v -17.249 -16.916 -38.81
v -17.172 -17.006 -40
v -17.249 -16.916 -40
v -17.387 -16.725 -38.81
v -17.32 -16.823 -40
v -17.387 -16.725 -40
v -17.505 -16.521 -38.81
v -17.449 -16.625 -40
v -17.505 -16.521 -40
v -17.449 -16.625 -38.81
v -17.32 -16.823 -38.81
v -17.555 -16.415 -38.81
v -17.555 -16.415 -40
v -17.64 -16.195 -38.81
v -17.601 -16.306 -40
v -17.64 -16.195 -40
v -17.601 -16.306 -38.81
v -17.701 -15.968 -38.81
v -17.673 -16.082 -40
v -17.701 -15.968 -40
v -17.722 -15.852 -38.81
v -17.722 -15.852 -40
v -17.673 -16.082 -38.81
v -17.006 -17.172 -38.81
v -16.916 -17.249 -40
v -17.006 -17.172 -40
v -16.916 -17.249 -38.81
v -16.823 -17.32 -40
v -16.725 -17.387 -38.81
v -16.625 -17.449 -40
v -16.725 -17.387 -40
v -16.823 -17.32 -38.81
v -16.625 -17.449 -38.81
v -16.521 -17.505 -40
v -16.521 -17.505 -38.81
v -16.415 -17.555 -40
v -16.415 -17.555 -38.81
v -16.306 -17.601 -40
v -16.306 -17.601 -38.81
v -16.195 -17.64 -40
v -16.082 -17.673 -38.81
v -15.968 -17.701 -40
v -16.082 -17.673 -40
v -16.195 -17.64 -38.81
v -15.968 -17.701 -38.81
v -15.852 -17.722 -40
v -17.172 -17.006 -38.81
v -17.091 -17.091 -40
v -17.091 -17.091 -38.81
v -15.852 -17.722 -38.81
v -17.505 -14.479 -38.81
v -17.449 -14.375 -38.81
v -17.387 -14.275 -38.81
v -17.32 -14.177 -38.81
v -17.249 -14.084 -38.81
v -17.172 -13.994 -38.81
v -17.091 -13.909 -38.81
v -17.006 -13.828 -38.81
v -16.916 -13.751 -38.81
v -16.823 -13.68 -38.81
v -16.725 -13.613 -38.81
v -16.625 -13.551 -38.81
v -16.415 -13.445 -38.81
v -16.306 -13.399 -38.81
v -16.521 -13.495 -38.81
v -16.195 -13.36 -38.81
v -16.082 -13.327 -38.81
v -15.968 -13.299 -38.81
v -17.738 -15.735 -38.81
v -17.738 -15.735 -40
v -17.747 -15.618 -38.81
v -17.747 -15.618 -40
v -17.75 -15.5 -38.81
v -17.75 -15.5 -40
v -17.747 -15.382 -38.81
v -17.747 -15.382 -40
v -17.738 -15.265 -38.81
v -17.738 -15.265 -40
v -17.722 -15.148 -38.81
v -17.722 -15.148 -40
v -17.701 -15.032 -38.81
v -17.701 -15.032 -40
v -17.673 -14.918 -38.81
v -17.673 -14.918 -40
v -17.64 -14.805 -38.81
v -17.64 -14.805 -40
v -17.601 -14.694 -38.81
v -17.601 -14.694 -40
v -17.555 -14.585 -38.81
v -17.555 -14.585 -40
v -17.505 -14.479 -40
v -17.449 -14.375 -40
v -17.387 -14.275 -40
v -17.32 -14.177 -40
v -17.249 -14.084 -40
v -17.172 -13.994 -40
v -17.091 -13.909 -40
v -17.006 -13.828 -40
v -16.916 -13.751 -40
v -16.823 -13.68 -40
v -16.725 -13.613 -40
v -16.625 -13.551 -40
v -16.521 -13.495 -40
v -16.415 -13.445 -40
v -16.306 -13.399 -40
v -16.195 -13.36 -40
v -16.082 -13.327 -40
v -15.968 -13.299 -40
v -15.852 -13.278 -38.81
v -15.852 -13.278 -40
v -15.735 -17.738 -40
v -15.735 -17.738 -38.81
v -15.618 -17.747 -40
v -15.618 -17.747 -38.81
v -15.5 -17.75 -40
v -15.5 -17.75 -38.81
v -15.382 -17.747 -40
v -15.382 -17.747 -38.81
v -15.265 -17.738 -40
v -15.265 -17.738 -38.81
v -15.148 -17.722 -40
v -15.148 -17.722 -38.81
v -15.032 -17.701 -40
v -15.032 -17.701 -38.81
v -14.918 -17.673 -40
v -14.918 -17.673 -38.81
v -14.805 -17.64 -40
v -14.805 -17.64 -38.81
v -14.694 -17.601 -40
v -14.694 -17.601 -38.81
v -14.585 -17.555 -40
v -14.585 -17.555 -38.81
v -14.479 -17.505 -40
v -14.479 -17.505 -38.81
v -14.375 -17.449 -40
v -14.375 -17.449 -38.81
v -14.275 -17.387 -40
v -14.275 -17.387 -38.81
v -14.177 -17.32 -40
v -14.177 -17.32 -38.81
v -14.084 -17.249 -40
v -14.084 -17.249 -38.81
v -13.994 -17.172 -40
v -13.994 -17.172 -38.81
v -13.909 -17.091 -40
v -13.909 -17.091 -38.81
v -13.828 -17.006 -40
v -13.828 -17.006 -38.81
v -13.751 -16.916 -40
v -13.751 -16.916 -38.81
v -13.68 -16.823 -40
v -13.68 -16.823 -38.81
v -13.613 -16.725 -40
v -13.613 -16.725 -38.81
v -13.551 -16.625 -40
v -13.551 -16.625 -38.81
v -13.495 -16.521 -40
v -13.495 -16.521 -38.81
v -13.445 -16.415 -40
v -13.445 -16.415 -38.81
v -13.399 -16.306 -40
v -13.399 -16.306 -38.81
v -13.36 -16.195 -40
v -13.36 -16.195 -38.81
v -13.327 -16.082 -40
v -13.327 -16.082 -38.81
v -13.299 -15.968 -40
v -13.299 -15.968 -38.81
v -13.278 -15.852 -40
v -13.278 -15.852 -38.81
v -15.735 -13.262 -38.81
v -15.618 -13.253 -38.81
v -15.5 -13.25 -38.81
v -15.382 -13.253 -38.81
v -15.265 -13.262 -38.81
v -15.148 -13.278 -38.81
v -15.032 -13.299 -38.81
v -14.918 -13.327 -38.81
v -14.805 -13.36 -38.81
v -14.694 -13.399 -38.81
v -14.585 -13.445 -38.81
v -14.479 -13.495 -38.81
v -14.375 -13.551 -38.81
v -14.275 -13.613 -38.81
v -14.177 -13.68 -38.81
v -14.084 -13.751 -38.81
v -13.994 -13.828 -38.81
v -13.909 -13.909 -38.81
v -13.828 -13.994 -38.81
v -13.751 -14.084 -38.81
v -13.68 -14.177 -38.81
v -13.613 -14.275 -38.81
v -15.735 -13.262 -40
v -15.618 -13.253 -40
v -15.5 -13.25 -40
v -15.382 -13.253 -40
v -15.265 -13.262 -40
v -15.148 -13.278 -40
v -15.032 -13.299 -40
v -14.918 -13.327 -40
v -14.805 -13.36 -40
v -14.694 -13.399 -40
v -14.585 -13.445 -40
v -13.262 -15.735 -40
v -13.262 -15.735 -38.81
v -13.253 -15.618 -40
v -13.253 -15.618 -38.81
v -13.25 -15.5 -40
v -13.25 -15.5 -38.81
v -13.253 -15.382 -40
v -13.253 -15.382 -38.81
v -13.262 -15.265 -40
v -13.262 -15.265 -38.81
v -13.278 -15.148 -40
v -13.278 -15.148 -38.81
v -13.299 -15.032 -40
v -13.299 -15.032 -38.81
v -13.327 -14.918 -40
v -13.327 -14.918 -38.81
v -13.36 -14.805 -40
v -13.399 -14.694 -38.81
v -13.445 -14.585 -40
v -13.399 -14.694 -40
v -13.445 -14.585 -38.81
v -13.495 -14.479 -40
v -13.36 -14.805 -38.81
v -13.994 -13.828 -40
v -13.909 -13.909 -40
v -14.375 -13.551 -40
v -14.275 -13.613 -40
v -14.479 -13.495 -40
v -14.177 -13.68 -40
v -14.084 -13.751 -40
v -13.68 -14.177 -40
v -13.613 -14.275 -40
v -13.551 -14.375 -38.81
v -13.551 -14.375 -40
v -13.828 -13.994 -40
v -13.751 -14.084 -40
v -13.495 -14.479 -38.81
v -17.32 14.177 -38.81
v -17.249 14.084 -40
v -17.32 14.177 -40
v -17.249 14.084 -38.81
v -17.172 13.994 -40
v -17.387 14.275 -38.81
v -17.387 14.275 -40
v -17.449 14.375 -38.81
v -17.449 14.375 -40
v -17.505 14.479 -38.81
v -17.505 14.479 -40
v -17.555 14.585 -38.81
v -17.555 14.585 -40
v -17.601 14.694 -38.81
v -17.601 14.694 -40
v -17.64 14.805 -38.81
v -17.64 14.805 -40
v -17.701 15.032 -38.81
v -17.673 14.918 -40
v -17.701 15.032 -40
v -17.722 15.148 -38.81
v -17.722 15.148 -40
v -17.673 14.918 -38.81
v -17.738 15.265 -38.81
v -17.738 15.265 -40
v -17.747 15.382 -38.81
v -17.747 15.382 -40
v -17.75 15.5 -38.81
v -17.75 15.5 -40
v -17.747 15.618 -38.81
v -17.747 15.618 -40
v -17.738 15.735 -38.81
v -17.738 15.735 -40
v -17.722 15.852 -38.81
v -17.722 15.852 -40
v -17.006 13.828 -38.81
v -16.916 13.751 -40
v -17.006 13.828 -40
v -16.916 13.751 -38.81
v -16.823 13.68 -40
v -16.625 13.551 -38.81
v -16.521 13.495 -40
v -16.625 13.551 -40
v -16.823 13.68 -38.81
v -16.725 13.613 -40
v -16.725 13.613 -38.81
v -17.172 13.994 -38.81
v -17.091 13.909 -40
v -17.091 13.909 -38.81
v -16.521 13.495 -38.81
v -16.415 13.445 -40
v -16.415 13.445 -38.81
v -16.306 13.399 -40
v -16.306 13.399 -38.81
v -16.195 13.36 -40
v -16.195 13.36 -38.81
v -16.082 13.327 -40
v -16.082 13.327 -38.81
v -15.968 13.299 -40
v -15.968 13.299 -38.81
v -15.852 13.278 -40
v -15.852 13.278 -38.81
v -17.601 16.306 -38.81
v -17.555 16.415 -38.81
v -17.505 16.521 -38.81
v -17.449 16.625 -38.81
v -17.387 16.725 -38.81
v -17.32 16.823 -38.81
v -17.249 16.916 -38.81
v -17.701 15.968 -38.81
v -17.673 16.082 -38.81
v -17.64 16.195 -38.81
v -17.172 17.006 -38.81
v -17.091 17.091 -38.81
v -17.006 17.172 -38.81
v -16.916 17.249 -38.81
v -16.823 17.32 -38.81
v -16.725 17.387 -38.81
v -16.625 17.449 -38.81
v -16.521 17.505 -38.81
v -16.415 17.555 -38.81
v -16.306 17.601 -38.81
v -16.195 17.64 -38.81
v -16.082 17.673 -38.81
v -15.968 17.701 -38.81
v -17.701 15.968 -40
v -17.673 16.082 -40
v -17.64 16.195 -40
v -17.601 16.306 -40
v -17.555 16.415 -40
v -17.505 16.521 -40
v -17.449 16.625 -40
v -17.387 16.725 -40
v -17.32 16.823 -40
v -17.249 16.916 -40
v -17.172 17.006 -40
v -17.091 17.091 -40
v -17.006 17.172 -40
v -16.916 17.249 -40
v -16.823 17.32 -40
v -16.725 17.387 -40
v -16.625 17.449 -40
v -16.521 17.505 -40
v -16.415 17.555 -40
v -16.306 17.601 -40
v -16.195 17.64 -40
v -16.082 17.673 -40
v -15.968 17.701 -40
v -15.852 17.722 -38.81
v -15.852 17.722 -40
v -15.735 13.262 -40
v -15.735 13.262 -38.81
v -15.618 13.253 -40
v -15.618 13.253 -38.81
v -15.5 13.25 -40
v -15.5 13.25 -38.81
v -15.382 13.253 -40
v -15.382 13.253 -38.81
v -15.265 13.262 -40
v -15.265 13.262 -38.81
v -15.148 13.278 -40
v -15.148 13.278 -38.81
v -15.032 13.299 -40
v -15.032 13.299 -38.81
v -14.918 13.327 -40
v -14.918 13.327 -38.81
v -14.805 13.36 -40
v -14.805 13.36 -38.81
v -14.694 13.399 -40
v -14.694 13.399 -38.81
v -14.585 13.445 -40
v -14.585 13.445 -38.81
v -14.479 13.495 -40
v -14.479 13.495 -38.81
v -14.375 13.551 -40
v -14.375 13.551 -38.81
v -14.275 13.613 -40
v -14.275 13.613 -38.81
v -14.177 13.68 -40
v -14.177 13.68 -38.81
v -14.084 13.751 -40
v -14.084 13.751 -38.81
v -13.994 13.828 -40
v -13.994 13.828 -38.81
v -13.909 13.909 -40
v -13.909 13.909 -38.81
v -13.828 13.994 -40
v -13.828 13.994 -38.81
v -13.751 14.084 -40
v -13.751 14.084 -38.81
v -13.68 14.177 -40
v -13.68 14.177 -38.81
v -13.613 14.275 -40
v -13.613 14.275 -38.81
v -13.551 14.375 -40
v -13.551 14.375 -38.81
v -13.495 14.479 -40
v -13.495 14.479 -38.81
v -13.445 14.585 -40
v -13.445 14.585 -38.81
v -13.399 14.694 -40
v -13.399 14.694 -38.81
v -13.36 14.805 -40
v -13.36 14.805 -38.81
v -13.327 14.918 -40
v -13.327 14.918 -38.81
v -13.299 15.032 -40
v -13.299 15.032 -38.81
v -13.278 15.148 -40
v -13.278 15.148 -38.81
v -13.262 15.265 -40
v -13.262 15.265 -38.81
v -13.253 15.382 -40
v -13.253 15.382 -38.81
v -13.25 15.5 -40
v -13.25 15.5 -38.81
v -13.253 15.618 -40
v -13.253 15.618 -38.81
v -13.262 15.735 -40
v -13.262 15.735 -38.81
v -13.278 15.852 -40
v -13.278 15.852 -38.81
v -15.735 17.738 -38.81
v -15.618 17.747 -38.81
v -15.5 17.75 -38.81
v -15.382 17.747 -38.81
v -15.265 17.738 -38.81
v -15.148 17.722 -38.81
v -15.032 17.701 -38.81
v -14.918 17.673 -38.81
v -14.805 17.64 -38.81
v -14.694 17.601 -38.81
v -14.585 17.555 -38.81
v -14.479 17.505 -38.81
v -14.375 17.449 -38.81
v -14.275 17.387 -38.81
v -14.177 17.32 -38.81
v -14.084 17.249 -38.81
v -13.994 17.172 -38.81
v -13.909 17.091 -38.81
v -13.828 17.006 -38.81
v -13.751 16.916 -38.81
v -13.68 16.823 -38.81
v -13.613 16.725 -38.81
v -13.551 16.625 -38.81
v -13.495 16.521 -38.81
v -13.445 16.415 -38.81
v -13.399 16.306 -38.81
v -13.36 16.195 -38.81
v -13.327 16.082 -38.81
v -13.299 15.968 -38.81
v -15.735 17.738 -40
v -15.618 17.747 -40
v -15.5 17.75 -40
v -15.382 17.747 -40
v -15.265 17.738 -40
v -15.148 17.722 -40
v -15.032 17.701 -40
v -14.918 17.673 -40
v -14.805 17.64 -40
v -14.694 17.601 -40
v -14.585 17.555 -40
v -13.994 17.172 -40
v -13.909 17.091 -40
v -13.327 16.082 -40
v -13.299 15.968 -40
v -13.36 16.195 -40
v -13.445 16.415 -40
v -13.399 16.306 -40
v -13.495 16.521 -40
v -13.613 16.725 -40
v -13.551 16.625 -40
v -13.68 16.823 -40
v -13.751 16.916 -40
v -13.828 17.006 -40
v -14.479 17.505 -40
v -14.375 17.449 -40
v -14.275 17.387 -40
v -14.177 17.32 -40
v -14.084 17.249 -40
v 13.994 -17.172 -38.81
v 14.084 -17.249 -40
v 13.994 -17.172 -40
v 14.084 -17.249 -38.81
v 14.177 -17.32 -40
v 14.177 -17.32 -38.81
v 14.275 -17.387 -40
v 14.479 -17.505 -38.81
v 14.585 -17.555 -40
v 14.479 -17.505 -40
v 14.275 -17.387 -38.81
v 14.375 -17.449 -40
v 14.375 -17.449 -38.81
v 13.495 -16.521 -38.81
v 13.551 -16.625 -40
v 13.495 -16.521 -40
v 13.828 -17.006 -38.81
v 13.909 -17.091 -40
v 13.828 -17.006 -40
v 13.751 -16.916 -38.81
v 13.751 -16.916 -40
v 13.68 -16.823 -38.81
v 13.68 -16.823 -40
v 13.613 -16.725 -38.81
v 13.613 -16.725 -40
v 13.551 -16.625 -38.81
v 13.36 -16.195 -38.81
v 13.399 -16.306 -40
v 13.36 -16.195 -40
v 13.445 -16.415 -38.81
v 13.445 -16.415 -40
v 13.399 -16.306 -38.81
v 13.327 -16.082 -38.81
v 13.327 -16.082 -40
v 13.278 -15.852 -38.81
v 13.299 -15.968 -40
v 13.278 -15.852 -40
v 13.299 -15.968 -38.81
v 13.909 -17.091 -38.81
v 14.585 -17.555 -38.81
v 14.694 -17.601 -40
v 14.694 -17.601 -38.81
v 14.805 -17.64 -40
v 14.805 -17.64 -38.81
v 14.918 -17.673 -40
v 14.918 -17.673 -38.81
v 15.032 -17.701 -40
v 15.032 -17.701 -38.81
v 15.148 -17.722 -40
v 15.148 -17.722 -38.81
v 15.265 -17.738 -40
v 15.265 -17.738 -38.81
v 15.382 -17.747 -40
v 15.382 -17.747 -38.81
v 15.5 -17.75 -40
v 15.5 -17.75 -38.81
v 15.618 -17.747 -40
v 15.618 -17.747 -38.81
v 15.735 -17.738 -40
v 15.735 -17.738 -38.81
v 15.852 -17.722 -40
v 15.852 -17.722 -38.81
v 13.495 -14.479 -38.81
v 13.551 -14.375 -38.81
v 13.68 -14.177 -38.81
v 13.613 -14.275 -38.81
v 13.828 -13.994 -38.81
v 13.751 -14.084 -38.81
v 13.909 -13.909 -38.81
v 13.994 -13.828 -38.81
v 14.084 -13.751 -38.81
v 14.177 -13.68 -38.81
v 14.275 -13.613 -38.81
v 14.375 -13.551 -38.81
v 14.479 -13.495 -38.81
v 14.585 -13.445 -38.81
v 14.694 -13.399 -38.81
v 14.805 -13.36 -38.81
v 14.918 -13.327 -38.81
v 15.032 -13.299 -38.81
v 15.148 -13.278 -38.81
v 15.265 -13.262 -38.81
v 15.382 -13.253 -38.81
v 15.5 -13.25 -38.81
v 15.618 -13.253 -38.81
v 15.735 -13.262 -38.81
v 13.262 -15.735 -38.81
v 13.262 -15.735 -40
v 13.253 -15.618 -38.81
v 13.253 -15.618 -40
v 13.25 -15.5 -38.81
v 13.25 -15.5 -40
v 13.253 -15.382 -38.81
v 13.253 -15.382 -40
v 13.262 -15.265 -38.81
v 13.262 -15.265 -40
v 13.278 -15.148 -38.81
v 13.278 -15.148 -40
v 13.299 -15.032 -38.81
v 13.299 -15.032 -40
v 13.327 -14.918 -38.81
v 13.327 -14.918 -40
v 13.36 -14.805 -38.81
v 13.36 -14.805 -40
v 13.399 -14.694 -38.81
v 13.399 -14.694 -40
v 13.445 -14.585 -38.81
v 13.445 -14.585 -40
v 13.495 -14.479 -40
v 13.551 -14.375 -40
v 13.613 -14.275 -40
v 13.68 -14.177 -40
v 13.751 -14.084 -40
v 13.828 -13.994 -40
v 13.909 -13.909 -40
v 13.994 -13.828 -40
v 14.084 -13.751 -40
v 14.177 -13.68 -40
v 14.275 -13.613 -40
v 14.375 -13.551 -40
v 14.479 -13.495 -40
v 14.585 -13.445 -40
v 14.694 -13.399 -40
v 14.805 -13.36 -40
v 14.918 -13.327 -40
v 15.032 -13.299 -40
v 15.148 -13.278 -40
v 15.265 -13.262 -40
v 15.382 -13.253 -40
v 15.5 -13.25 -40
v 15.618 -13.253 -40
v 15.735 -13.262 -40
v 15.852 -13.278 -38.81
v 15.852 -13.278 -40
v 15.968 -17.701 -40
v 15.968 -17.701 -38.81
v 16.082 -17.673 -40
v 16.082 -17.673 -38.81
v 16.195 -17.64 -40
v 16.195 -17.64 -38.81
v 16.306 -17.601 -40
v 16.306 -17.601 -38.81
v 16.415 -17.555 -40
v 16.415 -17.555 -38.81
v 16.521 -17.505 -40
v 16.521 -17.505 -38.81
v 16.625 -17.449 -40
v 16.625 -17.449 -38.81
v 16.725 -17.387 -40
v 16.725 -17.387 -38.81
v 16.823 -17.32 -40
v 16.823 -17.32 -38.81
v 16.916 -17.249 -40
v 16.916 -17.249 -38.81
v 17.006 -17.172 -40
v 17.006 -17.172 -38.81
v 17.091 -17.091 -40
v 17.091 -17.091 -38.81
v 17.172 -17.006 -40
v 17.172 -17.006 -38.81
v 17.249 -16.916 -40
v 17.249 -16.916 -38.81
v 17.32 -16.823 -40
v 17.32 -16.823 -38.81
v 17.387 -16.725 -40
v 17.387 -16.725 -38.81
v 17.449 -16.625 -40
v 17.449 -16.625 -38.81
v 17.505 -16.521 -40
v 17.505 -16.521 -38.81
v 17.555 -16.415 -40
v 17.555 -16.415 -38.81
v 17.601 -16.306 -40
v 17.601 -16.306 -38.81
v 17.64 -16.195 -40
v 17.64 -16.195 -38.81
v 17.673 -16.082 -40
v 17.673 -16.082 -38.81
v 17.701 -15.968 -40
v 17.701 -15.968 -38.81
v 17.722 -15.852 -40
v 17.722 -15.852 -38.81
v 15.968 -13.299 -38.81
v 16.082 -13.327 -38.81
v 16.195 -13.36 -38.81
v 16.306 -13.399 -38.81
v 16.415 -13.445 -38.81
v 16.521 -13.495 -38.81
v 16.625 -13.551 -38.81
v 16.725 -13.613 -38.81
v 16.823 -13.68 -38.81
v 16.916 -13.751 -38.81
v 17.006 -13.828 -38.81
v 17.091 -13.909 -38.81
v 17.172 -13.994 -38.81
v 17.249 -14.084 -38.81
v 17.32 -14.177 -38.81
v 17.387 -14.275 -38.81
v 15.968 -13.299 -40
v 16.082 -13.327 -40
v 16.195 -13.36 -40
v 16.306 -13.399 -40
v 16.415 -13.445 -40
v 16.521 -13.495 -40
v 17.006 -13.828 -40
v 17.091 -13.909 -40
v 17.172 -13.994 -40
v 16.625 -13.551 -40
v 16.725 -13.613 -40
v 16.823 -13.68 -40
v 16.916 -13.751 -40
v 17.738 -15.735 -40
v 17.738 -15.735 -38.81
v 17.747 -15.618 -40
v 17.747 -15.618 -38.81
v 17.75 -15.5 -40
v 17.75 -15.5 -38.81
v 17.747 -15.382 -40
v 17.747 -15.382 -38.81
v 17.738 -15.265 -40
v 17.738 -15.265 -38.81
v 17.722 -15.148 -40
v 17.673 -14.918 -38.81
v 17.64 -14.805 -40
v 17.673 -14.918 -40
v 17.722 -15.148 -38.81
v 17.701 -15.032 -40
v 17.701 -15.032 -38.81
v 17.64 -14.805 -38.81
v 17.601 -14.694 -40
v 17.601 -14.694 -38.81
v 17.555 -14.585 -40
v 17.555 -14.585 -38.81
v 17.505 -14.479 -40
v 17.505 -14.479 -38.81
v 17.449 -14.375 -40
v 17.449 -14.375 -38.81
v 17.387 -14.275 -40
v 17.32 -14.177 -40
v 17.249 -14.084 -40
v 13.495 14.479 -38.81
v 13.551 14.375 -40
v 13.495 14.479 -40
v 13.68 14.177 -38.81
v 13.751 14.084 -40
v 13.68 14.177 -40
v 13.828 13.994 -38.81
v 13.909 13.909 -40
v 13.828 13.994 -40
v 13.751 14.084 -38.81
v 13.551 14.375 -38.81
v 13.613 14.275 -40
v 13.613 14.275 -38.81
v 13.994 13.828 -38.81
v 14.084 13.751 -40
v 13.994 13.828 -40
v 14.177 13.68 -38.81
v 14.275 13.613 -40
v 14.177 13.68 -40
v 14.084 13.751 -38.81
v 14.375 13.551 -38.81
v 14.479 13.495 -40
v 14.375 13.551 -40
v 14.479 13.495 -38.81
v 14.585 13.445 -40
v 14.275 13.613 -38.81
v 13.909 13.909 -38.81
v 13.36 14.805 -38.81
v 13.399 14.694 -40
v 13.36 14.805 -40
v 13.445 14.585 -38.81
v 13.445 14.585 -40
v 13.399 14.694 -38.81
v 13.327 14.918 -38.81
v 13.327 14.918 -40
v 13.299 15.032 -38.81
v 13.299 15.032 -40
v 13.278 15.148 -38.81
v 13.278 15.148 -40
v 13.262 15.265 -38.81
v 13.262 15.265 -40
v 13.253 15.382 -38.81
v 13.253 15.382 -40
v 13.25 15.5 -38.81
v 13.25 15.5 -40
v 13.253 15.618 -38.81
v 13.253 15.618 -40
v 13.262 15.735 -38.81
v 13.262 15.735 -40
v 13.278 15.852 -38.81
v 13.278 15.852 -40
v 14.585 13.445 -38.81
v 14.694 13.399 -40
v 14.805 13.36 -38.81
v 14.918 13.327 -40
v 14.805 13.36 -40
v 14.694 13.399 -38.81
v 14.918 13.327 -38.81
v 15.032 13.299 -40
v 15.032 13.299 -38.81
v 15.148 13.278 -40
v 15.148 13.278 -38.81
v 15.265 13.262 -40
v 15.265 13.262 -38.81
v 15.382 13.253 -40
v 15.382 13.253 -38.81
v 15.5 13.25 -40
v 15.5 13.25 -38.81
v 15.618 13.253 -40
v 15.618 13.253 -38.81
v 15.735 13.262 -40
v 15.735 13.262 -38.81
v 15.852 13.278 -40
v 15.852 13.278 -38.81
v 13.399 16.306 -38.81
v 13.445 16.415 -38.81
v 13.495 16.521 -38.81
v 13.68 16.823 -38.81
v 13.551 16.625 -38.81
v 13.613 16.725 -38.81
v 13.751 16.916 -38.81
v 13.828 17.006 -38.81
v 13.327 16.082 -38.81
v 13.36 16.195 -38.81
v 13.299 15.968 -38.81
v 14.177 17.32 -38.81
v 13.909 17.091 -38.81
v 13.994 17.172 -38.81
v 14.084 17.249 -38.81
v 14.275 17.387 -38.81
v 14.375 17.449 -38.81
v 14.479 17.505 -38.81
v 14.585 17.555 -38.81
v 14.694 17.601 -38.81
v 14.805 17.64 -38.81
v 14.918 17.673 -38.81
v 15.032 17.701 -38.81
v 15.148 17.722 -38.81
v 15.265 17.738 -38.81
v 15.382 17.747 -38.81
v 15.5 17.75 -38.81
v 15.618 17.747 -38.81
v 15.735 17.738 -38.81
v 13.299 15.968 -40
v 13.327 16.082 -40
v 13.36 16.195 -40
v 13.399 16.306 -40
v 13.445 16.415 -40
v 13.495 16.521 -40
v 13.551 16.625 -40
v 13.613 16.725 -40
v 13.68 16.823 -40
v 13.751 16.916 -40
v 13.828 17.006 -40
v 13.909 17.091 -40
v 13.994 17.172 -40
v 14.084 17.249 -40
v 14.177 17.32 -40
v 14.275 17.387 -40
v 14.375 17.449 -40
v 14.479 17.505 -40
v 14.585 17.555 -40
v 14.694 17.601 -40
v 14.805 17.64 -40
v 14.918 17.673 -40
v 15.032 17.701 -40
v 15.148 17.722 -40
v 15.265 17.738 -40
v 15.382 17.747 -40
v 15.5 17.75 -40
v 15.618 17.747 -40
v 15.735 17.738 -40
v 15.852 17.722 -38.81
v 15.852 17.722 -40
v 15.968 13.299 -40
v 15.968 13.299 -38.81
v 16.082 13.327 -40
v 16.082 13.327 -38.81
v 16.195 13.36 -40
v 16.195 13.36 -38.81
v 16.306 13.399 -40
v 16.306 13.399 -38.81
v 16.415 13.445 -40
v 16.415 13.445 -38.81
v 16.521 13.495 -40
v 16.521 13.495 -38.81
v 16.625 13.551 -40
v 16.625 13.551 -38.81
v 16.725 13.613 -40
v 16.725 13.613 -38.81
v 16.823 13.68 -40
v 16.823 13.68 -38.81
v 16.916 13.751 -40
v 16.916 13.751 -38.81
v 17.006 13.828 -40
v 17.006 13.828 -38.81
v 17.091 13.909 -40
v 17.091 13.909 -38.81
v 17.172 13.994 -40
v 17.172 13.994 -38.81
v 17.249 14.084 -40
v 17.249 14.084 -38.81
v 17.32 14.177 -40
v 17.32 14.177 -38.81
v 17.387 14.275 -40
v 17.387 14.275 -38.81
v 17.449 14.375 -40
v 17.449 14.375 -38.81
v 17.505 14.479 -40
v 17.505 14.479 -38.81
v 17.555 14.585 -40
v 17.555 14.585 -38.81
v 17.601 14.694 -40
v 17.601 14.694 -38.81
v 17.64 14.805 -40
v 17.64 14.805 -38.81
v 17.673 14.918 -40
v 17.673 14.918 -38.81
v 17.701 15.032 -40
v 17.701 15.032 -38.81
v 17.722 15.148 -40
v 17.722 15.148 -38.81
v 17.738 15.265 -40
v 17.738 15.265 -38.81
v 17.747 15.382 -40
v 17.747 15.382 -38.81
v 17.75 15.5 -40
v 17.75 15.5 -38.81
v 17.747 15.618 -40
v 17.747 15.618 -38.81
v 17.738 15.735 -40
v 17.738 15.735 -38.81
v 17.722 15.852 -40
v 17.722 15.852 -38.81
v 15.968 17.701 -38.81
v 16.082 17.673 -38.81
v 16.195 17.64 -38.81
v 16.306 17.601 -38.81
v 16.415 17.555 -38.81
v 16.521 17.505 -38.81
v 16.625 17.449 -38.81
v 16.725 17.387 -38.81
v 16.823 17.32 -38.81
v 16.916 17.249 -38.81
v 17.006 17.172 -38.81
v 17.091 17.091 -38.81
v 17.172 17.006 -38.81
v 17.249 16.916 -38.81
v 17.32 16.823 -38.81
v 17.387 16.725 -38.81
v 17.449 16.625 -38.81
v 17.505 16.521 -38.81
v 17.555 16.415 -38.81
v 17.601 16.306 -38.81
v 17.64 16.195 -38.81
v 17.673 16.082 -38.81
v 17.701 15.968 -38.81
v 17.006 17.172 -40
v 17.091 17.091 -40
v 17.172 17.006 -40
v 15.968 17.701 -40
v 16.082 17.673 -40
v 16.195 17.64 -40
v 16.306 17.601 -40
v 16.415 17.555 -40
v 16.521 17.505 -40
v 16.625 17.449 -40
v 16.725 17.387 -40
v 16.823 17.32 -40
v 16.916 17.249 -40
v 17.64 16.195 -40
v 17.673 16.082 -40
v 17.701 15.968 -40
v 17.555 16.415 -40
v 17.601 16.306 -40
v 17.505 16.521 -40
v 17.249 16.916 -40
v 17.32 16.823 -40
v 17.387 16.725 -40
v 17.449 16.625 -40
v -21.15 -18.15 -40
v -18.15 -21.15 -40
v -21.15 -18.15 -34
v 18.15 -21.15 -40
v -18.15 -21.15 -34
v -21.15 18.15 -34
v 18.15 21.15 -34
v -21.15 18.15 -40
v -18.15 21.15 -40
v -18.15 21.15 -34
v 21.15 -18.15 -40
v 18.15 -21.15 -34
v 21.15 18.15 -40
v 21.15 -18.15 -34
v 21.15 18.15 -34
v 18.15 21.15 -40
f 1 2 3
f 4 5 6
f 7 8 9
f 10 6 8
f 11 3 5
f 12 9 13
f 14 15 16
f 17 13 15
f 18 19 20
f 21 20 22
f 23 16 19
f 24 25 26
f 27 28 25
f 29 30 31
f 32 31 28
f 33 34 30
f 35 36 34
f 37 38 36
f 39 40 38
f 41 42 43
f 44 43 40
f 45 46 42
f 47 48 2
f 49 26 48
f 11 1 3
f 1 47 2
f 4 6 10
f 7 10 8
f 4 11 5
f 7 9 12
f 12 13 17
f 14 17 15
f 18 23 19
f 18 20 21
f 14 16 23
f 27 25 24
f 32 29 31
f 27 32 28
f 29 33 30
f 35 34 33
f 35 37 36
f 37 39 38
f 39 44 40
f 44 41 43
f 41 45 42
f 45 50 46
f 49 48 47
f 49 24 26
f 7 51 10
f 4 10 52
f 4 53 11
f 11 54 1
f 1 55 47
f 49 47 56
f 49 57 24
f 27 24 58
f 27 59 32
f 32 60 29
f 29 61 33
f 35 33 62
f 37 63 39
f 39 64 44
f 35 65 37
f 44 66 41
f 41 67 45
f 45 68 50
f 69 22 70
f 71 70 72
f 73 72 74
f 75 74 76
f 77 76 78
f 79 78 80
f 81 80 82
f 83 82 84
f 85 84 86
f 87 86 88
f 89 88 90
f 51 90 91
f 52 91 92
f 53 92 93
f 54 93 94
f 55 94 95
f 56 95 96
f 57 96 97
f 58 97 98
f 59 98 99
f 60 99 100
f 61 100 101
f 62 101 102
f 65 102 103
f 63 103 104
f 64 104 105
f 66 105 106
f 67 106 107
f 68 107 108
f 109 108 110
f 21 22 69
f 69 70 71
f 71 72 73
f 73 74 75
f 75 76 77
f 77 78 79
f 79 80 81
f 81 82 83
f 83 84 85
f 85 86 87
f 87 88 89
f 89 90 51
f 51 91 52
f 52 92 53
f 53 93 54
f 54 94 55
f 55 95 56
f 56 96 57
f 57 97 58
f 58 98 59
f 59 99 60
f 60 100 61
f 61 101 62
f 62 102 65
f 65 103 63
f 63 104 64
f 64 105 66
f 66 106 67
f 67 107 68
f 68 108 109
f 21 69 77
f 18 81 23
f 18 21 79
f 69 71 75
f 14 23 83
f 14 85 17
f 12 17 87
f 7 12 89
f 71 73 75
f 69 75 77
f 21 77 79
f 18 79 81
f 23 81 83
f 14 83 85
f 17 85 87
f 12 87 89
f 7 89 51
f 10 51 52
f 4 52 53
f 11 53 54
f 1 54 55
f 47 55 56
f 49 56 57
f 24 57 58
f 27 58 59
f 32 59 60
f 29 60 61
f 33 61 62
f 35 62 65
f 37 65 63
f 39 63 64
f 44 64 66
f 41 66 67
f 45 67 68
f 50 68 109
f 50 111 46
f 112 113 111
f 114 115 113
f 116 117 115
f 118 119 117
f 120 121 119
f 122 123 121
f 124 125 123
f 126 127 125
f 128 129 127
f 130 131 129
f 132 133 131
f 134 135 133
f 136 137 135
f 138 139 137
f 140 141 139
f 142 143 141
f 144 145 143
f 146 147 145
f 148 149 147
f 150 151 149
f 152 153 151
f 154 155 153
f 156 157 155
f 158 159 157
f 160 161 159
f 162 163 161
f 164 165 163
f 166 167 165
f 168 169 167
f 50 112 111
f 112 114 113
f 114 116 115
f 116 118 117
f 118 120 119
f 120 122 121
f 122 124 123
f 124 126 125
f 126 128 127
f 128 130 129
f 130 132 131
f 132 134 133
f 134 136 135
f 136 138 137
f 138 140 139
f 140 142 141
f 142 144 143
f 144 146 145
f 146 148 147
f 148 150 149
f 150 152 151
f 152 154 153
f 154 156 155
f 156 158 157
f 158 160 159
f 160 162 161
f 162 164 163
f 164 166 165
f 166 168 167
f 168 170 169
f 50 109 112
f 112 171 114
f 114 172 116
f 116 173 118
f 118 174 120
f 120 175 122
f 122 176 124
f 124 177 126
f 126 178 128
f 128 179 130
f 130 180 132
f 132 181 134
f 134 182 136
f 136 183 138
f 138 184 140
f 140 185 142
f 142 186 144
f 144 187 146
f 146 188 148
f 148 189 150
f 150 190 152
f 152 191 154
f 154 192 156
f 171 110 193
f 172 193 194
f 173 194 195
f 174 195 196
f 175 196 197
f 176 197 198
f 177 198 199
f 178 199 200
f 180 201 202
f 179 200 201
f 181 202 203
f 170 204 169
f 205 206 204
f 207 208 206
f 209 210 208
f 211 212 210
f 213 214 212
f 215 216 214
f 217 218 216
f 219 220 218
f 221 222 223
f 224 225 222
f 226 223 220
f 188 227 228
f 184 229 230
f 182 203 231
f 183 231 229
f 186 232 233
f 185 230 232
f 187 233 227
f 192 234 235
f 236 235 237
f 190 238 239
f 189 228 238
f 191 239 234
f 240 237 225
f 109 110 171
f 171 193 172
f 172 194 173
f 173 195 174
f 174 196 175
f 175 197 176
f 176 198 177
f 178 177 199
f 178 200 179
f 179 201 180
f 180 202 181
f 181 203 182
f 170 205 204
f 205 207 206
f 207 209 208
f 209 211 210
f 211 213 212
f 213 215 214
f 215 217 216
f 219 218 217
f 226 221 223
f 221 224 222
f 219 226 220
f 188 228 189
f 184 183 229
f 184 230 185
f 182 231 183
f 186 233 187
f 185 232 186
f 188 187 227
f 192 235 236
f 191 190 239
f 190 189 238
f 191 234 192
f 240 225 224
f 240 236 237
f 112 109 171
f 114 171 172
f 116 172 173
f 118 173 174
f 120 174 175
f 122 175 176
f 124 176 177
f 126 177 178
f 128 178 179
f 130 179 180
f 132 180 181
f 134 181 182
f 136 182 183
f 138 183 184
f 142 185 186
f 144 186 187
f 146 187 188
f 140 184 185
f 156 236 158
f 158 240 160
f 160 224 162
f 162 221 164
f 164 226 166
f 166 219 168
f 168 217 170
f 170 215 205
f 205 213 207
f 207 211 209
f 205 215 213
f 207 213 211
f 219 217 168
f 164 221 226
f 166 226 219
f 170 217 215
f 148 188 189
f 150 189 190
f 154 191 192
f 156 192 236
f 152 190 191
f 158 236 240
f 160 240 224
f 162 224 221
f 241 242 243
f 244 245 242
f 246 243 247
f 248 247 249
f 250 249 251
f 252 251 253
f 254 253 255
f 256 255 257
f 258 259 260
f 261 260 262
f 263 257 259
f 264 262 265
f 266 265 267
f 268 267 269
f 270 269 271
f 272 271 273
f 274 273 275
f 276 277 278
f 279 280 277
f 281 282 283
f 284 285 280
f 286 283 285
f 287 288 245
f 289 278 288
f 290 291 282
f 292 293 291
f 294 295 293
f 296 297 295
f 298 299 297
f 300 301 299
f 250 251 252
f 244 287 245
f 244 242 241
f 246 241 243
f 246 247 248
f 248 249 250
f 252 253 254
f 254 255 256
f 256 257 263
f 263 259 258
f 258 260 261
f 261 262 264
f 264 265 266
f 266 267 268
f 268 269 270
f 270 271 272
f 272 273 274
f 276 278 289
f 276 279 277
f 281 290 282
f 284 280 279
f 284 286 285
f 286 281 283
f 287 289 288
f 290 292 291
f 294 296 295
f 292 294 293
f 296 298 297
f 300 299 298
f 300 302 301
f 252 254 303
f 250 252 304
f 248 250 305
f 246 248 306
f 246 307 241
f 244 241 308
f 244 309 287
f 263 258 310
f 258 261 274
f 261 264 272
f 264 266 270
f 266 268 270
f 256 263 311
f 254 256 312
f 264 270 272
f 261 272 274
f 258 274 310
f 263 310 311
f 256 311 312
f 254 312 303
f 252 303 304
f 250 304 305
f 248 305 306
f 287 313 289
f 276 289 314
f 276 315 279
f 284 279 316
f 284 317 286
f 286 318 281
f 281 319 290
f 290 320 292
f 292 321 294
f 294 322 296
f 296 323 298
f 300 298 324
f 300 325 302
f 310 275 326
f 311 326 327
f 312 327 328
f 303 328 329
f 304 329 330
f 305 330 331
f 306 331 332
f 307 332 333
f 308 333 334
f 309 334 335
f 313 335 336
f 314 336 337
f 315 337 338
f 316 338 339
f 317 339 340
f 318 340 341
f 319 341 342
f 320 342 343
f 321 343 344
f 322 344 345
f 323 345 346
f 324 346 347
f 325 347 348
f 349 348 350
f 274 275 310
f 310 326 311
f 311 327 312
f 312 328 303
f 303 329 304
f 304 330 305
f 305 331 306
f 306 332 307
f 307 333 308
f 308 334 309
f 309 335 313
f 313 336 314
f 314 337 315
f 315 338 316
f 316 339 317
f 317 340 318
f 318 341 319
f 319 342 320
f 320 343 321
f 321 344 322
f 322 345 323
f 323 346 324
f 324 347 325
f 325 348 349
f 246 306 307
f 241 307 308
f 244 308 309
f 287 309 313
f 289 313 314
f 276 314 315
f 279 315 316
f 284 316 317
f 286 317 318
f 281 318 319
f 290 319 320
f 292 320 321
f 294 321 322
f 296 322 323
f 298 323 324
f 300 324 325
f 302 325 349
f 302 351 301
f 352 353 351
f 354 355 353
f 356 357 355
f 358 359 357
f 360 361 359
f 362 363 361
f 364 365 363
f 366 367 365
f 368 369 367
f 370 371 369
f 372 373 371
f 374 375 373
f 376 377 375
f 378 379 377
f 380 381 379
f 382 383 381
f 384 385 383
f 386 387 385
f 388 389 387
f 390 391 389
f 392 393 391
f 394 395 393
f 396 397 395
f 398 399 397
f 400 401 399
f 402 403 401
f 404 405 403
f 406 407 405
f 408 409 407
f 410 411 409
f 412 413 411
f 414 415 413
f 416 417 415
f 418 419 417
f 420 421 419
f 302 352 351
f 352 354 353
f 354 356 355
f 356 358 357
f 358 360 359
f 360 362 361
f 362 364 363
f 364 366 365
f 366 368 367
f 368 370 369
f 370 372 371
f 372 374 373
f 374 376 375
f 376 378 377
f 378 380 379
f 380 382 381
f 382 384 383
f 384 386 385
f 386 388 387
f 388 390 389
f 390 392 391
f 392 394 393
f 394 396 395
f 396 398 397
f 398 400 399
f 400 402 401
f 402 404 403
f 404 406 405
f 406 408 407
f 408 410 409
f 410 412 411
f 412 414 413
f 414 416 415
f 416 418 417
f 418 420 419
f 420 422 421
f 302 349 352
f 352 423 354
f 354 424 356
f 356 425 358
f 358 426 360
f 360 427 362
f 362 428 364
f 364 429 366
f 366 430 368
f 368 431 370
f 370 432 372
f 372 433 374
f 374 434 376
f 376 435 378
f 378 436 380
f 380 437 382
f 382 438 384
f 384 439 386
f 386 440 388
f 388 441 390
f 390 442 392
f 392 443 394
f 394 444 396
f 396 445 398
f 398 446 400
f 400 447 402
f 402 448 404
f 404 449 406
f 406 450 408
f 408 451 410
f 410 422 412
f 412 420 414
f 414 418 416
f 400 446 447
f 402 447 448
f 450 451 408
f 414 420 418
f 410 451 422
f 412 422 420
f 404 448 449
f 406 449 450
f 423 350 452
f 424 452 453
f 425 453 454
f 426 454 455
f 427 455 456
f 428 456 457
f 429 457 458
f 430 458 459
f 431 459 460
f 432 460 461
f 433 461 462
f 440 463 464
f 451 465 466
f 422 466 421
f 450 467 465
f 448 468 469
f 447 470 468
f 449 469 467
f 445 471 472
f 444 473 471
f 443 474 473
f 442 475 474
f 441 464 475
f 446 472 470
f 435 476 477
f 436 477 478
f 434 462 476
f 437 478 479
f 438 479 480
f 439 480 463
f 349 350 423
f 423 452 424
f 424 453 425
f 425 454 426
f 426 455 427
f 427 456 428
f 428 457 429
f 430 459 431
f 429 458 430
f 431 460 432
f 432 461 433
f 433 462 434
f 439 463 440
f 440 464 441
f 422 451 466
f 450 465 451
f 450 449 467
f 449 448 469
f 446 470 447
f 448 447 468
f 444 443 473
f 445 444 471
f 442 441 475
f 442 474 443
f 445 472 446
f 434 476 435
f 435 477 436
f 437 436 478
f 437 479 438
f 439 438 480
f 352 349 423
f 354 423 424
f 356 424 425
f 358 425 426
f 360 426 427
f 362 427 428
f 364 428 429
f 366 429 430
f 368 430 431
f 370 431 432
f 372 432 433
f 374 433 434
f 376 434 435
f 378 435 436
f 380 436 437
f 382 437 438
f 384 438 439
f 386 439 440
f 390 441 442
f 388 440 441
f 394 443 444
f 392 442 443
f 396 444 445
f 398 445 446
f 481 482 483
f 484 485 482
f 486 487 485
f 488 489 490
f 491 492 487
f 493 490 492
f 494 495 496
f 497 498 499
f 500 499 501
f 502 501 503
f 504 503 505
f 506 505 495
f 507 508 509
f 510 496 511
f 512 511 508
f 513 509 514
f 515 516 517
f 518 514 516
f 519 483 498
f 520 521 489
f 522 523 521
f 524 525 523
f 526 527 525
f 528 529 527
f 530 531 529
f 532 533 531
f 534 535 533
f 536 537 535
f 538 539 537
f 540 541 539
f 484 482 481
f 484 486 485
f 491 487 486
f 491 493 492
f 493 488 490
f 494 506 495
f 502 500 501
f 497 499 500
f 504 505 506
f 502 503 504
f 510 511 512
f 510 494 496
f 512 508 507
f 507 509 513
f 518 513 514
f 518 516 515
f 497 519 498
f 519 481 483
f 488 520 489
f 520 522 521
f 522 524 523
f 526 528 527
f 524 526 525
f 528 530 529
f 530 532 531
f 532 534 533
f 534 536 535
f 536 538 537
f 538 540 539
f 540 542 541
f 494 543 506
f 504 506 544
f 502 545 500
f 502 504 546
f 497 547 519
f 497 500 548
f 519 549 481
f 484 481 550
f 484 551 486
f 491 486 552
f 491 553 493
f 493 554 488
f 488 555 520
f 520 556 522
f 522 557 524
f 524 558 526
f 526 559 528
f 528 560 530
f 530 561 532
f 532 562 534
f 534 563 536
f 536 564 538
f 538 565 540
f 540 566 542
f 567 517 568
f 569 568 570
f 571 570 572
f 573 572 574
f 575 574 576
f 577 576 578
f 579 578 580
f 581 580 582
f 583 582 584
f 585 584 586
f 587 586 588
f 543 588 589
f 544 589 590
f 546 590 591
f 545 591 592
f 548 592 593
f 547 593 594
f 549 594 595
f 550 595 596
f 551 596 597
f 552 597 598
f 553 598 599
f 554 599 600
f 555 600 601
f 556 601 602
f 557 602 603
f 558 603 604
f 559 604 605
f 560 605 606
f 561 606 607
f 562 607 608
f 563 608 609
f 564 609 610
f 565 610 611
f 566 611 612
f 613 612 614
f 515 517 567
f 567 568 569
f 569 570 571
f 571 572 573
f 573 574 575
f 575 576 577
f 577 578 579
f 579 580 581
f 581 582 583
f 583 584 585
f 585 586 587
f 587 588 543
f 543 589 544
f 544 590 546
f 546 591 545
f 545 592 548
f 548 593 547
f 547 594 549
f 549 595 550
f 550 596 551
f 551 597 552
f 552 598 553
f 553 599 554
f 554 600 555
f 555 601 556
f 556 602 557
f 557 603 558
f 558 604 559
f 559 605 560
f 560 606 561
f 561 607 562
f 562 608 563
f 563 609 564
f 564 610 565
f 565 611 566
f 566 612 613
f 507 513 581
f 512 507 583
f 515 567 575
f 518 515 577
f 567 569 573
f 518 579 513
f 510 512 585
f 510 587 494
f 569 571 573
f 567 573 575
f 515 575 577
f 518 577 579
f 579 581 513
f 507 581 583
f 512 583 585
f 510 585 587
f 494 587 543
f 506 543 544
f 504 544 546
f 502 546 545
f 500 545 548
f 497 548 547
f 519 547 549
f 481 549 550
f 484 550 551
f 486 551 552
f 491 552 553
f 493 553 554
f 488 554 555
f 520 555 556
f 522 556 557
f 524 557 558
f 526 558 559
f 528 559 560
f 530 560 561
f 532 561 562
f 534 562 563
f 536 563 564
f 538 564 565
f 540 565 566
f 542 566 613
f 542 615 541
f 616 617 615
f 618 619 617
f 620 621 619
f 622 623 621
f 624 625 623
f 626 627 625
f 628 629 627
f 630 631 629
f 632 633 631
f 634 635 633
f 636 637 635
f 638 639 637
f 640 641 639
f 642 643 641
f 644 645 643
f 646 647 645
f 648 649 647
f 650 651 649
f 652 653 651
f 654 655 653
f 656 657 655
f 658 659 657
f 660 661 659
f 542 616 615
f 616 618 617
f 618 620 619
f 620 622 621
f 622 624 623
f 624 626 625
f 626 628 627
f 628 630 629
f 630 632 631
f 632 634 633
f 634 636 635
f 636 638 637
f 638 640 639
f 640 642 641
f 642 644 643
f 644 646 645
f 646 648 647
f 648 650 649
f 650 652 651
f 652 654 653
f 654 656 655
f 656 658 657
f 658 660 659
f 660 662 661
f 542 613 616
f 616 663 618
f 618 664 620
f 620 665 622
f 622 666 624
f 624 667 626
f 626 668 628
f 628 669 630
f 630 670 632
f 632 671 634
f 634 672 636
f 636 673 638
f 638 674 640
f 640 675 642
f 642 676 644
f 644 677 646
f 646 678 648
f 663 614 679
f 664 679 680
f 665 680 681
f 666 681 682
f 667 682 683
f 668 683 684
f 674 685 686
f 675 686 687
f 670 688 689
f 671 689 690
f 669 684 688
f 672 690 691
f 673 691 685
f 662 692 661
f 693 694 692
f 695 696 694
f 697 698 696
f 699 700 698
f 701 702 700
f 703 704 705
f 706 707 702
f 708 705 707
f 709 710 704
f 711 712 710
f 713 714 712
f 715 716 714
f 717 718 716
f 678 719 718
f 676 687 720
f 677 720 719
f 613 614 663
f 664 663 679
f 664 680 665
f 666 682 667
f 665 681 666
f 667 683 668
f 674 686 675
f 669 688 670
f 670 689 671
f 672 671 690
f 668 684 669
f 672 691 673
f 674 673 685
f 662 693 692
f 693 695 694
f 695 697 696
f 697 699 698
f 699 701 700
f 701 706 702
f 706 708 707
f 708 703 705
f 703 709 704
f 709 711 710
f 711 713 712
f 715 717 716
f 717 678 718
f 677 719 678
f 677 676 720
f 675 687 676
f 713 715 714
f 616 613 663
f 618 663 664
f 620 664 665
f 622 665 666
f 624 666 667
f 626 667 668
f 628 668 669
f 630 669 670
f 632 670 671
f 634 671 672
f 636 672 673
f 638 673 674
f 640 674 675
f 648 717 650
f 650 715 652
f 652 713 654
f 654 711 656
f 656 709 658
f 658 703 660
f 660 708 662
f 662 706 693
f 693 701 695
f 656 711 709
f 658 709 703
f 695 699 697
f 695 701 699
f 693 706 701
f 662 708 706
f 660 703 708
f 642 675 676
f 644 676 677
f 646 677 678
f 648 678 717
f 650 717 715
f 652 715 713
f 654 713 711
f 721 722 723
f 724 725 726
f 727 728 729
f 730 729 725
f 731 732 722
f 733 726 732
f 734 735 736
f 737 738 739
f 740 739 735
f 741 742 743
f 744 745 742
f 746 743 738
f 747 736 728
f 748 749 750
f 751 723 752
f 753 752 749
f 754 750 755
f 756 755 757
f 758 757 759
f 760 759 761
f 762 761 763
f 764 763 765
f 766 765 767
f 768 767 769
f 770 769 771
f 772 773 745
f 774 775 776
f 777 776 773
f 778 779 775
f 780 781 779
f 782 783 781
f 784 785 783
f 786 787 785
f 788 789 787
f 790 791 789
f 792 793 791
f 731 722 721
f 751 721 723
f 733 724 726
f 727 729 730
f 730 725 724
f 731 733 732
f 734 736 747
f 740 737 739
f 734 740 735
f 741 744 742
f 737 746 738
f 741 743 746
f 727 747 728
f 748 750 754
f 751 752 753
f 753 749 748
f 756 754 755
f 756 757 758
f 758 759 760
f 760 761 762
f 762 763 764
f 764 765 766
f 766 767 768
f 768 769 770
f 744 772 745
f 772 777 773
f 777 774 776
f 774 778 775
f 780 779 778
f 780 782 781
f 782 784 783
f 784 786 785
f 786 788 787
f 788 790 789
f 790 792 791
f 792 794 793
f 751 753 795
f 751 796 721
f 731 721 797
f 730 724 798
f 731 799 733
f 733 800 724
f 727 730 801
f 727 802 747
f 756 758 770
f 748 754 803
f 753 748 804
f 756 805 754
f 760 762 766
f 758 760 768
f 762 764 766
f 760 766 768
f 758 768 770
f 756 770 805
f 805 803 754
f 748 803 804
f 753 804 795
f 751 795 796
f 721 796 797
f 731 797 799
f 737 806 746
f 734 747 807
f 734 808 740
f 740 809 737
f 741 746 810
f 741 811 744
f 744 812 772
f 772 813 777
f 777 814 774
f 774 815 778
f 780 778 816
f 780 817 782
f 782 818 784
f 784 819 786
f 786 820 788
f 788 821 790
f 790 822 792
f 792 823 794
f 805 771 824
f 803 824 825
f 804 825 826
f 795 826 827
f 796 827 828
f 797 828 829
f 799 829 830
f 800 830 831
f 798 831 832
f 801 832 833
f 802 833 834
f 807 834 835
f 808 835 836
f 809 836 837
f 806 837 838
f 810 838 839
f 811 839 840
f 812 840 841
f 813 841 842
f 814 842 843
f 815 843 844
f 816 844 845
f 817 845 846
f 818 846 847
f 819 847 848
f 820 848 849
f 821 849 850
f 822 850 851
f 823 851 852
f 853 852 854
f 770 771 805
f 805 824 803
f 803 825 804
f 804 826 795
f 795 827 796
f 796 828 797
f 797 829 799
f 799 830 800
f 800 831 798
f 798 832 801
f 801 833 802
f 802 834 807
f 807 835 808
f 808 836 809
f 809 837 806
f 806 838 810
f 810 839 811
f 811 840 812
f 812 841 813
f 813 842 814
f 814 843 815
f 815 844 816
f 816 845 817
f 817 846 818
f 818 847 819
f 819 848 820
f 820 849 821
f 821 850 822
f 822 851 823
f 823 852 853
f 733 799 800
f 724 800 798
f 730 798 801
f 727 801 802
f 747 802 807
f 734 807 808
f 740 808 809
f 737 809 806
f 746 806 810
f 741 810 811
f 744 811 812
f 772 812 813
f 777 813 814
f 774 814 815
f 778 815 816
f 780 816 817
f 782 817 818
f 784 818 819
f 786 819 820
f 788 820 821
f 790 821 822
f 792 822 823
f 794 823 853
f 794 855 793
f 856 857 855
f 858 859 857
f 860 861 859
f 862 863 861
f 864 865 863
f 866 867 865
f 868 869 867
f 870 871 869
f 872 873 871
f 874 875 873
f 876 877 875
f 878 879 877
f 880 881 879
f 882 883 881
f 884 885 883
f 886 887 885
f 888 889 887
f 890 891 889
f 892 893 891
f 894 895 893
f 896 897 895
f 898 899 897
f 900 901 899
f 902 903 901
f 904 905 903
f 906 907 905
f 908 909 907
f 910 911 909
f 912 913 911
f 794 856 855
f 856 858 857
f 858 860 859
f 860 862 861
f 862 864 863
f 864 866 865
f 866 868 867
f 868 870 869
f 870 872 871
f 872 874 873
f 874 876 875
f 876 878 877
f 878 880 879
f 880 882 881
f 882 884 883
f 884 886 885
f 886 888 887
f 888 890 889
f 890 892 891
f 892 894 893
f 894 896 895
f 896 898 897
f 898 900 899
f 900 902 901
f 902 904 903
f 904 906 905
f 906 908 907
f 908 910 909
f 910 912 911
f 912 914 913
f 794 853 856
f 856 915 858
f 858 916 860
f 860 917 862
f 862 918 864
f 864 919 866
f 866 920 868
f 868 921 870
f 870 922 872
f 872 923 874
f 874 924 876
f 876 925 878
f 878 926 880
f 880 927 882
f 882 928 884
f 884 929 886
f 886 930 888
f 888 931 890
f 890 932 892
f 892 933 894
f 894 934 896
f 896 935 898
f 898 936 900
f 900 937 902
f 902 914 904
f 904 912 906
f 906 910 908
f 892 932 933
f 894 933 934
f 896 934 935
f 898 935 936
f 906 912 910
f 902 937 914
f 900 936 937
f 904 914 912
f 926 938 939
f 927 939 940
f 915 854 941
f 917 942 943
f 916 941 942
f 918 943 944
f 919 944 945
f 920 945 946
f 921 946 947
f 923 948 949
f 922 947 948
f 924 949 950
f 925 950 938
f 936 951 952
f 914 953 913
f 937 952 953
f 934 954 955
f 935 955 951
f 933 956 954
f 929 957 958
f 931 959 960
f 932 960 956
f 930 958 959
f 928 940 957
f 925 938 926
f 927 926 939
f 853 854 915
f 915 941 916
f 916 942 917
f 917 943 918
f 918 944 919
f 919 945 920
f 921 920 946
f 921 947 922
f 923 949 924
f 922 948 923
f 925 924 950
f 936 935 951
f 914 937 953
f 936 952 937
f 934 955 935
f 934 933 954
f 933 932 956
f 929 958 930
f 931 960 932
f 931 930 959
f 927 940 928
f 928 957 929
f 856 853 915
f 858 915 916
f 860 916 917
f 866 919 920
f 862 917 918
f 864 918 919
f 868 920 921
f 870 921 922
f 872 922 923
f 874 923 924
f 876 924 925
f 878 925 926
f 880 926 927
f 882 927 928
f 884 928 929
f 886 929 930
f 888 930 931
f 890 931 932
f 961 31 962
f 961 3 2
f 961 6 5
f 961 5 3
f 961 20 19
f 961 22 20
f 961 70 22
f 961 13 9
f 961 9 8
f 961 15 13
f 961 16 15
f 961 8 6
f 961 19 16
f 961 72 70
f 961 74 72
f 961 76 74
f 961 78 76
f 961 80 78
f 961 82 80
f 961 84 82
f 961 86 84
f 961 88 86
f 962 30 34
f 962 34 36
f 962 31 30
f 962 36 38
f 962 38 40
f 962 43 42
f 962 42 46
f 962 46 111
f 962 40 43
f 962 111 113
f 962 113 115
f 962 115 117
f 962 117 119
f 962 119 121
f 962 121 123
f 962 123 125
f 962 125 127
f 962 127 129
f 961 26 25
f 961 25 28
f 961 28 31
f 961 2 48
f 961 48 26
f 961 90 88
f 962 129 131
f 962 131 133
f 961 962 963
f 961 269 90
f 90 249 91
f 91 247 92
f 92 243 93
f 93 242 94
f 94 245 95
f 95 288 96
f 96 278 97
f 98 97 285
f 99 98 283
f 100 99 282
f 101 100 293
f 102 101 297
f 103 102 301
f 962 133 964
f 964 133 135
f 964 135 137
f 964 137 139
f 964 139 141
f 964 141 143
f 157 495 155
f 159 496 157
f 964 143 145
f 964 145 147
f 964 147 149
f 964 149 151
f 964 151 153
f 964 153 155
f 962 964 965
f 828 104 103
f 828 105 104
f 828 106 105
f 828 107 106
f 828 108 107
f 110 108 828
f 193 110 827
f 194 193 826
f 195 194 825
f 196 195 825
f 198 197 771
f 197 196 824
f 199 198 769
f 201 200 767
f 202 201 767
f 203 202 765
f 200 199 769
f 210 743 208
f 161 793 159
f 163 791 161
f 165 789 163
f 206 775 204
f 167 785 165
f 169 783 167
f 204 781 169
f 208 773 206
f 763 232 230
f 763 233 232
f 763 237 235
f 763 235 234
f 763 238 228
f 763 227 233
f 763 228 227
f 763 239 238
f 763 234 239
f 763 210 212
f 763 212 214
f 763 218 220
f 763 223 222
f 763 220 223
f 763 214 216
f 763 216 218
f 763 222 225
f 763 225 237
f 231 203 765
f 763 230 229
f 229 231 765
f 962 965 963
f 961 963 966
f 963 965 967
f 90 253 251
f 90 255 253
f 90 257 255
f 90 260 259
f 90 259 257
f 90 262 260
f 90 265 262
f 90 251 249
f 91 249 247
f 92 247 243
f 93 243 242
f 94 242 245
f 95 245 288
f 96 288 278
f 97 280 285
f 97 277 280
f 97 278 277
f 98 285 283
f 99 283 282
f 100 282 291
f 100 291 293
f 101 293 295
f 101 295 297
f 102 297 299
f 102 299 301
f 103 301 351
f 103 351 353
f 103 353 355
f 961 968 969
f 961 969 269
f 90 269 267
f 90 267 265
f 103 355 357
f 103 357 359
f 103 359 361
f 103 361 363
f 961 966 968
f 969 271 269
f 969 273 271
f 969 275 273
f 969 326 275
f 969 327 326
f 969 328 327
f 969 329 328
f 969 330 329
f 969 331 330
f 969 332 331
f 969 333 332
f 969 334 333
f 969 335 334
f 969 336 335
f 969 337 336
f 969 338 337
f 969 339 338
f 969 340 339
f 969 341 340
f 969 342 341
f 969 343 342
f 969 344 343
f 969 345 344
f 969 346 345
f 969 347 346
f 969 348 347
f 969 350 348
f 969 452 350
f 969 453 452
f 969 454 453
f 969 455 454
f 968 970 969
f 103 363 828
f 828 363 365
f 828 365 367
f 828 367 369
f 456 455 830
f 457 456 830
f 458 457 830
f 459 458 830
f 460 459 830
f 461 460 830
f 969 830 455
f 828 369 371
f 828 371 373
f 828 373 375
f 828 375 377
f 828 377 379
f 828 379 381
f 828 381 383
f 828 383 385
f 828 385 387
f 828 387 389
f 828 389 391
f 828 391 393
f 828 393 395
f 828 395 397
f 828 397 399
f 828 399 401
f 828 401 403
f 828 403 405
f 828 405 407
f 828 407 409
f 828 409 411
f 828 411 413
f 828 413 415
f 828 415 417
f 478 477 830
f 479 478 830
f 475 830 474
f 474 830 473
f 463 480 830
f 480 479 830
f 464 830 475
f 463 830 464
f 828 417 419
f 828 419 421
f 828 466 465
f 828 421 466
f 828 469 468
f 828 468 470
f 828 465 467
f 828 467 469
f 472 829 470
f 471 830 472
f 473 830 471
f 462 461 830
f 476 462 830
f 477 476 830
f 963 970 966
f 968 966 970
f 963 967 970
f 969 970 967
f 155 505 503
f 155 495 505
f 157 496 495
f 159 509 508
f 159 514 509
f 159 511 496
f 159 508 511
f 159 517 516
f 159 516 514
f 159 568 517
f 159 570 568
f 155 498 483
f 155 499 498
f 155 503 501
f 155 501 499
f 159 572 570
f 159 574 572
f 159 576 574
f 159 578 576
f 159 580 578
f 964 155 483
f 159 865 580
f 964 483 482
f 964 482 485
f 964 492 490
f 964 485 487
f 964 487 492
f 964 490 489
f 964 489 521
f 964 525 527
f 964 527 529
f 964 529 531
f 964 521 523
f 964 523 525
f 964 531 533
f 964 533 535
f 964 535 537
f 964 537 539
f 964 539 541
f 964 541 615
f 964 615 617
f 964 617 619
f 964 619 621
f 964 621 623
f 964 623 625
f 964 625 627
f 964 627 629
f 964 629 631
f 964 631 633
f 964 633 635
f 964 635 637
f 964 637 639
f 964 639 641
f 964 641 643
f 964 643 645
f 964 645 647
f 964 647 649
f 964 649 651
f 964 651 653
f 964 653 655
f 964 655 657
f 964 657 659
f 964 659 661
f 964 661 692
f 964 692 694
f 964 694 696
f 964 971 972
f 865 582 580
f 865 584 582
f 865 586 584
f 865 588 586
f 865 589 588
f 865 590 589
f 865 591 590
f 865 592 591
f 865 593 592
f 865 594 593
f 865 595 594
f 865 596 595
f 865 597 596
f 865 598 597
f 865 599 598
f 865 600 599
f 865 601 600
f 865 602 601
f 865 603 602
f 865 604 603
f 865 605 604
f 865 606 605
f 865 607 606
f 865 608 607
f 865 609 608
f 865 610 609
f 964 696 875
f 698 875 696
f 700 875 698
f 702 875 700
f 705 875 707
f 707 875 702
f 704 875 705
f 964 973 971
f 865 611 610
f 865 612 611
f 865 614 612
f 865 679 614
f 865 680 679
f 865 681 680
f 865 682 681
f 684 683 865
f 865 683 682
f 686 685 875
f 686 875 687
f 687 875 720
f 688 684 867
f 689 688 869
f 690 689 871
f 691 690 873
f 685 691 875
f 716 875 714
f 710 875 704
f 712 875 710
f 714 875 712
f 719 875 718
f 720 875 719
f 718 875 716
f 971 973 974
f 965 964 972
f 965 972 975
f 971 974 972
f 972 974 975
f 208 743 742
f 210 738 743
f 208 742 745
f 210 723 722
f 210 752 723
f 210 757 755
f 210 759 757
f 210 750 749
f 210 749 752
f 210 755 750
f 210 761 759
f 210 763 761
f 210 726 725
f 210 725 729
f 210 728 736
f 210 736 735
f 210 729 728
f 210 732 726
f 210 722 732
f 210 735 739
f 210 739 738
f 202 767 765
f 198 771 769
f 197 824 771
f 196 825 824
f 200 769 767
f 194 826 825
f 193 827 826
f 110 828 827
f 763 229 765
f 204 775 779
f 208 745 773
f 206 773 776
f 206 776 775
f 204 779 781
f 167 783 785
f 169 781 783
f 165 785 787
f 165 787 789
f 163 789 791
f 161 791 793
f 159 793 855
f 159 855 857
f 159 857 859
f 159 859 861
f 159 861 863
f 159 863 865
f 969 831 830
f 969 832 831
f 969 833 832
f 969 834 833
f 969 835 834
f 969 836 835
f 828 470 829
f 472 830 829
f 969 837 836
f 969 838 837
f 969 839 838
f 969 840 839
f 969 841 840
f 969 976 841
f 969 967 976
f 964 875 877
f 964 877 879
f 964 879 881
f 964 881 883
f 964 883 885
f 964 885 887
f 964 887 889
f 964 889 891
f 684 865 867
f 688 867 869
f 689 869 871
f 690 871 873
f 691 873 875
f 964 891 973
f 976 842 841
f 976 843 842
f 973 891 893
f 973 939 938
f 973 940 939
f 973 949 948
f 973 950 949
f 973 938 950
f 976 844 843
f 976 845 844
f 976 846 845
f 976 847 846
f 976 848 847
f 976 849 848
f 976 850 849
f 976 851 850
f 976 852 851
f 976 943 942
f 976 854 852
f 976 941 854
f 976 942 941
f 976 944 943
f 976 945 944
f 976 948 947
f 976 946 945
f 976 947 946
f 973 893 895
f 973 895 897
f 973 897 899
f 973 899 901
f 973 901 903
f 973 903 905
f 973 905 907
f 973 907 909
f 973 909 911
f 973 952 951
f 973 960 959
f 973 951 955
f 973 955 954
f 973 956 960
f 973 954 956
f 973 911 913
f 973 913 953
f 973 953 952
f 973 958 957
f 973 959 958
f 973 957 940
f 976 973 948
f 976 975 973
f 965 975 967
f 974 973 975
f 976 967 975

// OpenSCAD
// file: C:/gh/oomlout_oobb_part_motor_gearbox_wave_drive_version_5/parts/oobb_part_motor_gearbox_wave_drive_version_5_12_to_1_reduction/nema17_reference.scad
// Visual reference matching the previous cycloidal project's 40 mm motor envelope.
// Face is Z=0; motor body extends towards -Z and shaft towards +Z.
// End caps, corner chamfers and connector are illustrative external details.
// This is purchased reference hardware, never a printable gearbox component.
module nema17_outline(width=42.3,depth=6,chamfer=3) {
    w=width/2;
    linear_extrude(depth) polygon([
        [-w+chamfer,-w],[w-chamfer,-w],[w,-w+chamfer],[w,w-chamfer],
        [w-chamfer,w],[-w+chamfer,w],[-w,w-chamfer],[-w,-w+chamfer]
    ]);
}
module nema17_front() {
    difference() {
        translate([0,0,-motor_cap_depth])
            nema17_outline(motor_body_width,motor_cap_depth,motor_corner_chamfer);
        for(x=[-motor_hole_pitch/2,motor_hole_pitch/2],y=[-motor_hole_pitch/2,motor_hole_pitch/2])
            translate([x,y,-motor_thread_depth]) cylinder(d=3,h=motor_thread_depth+0.01);
        translate([0,0,-motor_cap_depth-0.01]) cylinder(d=motor_shaft_diameter,h=motor_cap_depth+0.02);
    }
}
module nema17_stator() {
    translate([0,0,-motor_body_depth+motor_cap_depth])
        nema17_outline(motor_body_width,motor_body_depth-2*motor_cap_depth,motor_corner_chamfer);
}
module nema17_rear() {
    difference() {
        translate([0,0,-motor_body_depth])
            nema17_outline(motor_body_width,motor_cap_depth,motor_corner_chamfer);
        for(x=[-motor_hole_pitch/2,motor_hole_pitch/2],y=[-motor_hole_pitch/2,motor_hole_pitch/2])
            translate([x,y,-motor_body_depth-0.01]) cylinder(d=4.5,h=1.2);
    }
}
module nema17_pilot() {
    difference() {
        cylinder(d=motor_pilot_diameter,h=motor_pilot_height);
        translate([0,0,-0.01]) cylinder(d=motor_shaft_diameter,h=motor_pilot_height+0.02);
    }
}
module nema17_shaft() {
    linear_extrude(motor_shaft_length) intersection() {
        circle(d=motor_shaft_diameter);
        translate([-10,-10]) square([10+motor_shaft_diameter/2-motor_shaft_flat_depth,20]);
    }
}
module nema17_connector() {
    // Indicative connector envelope; actual cable exit depends on motor model.
    translate([-7,motor_body_width/2-1,-motor_body_depth+motor_cap_depth])
        cube([14,5,7]);
}
module nema17_reference() {
    color("Silver") { nema17_front(); nema17_rear(); nema17_pilot(); nema17_shaft(); }
    color([0.08,0.08,0.08]) nema17_stator();
    color([0.2,0.2,0.2]) nema17_connector();
}
// file: C:/gh/oomlout_oobb_part_motor_gearbox_wave_drive_version_5/parts/oobb_part_motor_gearbox_wave_drive_version_5_12_to_1_reduction/motor_reference_parameters.scad
// Purchased motor envelope. Recipe defines body, shaft and mounting dimensions.
motor_body_depth = 40.0;
motor_shaft_length = 24.0;
motor_hole_pitch = 31.0;
motor_thread_depth = 6.0;
motor_pilot_diameter = 22.0;
motor_pilot_height = 2.0;
motor_shaft_end_clearance = 0.5;
motor_thread_engagement = 5.2;
motor_shaft_diameter = 5.0;
motor_body_width = 42.3;
motor_cap_depth = 6.0;
motor_corner_chamfer = 3.0;
motor_shaft_flat_depth = 0.5;
motor_face_z = 0.0;
// main file
include <C:/gh/oomlout_oobb_part_motor_gearbox_wave_drive_version_5/parts/oobb_part_motor_gearbox_wave_drive_version_5_12_to_1_reduction/motor_reference_parameters.scad>
include <C:/gh/oomlout_oobb_part_motor_gearbox_wave_drive_version_5/parts/oobb_part_motor_gearbox_wave_drive_version_5_12_to_1_reduction/nema17_reference.scad>
$fn=120;
nema17_rear();
